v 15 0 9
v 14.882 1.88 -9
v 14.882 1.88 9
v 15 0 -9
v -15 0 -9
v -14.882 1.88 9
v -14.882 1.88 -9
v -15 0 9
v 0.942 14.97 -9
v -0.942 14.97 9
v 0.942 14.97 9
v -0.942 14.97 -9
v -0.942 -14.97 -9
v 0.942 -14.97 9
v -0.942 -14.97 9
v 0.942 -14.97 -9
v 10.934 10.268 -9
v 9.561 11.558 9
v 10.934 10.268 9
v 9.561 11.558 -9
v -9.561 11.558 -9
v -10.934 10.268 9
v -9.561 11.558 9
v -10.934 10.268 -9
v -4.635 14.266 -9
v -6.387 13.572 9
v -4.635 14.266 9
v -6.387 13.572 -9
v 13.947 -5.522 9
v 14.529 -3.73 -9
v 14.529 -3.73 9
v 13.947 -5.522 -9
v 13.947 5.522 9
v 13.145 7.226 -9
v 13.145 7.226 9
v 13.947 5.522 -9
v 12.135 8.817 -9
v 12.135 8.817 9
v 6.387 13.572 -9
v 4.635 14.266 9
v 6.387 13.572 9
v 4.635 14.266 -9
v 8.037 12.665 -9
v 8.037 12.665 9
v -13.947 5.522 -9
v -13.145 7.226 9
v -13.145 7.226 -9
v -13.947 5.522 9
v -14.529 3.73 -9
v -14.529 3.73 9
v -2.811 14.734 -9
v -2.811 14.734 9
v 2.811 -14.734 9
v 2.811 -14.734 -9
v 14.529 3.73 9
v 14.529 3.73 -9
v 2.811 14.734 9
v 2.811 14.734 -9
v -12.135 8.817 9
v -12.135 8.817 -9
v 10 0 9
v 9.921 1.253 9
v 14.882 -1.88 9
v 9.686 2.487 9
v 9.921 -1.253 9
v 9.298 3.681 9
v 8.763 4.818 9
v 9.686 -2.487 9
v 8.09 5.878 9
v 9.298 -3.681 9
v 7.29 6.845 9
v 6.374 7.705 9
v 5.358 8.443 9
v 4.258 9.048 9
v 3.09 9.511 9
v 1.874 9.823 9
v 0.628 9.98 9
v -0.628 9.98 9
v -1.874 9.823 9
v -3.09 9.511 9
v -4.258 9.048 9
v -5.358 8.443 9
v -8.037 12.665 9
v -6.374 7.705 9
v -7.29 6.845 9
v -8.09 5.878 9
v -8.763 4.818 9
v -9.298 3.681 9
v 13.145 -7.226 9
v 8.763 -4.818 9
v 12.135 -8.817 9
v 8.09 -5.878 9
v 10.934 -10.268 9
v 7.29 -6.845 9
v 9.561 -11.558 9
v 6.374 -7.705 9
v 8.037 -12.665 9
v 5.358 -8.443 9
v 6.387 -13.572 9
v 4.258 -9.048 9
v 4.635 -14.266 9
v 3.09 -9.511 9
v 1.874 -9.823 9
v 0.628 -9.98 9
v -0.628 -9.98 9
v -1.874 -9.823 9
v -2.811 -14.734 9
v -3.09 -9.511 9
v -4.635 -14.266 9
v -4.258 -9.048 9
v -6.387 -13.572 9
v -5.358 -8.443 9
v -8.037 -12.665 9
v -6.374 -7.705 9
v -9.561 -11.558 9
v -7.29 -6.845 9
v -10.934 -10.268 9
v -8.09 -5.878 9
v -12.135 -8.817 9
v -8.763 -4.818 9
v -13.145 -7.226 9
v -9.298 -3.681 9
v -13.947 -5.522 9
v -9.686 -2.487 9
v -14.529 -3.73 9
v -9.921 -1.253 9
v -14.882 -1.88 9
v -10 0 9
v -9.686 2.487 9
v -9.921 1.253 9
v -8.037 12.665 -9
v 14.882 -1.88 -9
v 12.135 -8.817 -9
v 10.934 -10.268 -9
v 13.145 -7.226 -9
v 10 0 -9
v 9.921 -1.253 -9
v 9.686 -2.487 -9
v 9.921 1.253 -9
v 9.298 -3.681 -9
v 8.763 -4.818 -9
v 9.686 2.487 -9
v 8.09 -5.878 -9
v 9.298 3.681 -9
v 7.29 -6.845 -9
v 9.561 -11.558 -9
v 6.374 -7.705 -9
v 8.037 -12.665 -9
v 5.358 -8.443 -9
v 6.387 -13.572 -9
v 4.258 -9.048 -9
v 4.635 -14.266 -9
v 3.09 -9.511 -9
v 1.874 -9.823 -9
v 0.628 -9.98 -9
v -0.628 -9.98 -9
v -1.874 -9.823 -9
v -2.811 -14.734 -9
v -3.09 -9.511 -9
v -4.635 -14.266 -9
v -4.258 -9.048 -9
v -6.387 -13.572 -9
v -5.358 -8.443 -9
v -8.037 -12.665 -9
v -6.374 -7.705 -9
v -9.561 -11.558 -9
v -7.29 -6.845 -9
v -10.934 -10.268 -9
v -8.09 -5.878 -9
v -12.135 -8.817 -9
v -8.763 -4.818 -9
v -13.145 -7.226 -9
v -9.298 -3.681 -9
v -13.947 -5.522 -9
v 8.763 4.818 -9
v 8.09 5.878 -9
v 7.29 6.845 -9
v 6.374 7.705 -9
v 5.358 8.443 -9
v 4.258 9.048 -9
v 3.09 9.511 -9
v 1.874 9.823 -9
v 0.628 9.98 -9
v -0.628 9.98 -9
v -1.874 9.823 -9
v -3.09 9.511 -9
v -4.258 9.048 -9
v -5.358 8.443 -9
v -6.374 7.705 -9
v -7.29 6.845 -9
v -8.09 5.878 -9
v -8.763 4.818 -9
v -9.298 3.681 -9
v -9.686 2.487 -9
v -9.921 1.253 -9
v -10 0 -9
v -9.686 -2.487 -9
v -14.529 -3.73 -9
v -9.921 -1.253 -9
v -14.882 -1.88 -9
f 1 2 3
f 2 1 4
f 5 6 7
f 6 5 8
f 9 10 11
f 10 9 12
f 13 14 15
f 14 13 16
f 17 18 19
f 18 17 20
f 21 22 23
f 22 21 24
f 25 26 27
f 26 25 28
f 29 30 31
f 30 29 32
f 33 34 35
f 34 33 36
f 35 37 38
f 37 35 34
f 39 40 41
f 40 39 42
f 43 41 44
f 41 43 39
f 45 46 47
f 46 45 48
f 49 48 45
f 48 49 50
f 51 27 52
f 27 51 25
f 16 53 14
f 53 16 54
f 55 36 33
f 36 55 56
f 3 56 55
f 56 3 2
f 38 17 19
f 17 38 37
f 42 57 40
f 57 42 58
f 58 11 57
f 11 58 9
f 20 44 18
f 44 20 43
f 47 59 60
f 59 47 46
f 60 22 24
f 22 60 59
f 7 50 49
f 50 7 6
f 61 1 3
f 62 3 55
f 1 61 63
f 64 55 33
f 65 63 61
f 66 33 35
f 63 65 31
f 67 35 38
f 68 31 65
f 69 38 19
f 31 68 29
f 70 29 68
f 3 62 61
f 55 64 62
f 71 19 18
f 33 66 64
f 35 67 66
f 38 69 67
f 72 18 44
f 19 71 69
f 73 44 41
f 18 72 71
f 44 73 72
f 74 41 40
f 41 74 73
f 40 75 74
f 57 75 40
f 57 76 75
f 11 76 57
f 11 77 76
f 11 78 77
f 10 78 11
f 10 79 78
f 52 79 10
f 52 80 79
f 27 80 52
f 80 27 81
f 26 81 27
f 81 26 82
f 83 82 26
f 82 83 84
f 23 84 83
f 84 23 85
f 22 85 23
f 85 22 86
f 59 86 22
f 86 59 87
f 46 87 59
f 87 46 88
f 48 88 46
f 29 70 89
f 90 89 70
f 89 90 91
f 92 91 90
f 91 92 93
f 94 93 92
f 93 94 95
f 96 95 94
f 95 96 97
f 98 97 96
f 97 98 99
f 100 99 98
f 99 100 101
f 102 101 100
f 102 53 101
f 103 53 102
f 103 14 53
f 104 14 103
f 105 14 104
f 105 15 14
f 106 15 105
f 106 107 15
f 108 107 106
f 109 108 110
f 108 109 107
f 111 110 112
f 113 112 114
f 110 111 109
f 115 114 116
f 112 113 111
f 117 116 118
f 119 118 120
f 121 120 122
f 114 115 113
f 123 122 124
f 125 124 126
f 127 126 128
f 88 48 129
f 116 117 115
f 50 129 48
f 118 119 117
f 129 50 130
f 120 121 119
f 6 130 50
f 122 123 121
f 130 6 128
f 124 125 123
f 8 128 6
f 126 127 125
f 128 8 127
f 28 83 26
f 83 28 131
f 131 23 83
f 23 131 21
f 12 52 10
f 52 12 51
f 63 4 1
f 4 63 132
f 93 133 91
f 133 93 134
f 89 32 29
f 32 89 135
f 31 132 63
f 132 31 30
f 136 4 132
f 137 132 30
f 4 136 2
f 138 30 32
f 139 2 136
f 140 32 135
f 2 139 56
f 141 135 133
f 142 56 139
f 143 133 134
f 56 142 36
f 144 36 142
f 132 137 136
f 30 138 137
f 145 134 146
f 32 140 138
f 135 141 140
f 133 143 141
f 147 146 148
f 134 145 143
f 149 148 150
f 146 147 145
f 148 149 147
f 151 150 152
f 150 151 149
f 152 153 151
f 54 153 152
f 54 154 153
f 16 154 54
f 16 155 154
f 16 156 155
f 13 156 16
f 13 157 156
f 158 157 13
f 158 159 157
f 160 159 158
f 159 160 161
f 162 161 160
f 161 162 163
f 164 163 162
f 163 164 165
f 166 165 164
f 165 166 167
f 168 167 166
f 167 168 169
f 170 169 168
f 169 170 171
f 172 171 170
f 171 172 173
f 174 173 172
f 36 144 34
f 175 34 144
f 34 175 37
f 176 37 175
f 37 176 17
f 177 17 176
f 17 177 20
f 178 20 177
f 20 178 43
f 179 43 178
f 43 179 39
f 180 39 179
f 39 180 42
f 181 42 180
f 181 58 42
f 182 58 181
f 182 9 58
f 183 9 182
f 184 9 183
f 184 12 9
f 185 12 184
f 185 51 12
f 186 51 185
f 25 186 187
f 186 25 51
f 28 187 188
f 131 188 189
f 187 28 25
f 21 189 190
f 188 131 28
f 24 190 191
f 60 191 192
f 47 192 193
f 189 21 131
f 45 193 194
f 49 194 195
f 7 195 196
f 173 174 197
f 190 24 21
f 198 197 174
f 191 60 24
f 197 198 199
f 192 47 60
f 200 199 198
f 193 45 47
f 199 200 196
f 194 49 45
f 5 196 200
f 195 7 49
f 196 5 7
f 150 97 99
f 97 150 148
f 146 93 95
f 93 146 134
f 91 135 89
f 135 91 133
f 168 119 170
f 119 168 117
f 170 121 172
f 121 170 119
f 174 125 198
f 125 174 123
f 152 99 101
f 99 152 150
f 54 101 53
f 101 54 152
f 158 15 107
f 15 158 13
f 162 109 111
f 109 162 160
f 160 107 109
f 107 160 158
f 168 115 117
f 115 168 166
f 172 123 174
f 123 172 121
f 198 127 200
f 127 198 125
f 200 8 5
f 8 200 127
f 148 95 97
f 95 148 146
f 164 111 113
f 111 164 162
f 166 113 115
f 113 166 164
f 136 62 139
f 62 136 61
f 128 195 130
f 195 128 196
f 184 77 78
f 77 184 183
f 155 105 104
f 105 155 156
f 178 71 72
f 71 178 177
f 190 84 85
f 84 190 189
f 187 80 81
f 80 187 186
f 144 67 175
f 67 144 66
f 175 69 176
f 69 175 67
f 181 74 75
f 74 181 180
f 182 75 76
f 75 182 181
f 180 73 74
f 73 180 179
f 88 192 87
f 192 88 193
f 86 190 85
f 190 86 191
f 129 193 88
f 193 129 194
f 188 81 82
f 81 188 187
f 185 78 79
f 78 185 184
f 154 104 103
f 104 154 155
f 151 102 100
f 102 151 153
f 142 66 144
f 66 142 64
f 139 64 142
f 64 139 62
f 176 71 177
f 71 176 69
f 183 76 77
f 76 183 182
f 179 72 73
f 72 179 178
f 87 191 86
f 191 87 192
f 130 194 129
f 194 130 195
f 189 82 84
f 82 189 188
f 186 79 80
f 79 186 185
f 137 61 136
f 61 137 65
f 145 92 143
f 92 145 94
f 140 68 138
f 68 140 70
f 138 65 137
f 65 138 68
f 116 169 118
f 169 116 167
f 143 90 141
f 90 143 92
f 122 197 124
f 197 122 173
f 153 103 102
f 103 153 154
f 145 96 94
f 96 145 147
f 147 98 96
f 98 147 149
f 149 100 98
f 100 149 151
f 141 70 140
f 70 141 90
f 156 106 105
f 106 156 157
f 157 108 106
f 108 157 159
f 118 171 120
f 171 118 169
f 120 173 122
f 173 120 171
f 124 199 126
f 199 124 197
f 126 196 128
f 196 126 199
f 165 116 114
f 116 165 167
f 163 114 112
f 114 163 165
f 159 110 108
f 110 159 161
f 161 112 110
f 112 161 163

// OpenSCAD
$fn = 50;


difference() {
	union() {
		translate(v = [0, 0, -9.0000000000]) {
			cylinder(h = 18, r = 15.0000000000);
		}
	}
	union() {
		translate(v = [0, 0, -100.0000000000]) {
			cylinder(h = 200, r = 10);
		}
	}
}
